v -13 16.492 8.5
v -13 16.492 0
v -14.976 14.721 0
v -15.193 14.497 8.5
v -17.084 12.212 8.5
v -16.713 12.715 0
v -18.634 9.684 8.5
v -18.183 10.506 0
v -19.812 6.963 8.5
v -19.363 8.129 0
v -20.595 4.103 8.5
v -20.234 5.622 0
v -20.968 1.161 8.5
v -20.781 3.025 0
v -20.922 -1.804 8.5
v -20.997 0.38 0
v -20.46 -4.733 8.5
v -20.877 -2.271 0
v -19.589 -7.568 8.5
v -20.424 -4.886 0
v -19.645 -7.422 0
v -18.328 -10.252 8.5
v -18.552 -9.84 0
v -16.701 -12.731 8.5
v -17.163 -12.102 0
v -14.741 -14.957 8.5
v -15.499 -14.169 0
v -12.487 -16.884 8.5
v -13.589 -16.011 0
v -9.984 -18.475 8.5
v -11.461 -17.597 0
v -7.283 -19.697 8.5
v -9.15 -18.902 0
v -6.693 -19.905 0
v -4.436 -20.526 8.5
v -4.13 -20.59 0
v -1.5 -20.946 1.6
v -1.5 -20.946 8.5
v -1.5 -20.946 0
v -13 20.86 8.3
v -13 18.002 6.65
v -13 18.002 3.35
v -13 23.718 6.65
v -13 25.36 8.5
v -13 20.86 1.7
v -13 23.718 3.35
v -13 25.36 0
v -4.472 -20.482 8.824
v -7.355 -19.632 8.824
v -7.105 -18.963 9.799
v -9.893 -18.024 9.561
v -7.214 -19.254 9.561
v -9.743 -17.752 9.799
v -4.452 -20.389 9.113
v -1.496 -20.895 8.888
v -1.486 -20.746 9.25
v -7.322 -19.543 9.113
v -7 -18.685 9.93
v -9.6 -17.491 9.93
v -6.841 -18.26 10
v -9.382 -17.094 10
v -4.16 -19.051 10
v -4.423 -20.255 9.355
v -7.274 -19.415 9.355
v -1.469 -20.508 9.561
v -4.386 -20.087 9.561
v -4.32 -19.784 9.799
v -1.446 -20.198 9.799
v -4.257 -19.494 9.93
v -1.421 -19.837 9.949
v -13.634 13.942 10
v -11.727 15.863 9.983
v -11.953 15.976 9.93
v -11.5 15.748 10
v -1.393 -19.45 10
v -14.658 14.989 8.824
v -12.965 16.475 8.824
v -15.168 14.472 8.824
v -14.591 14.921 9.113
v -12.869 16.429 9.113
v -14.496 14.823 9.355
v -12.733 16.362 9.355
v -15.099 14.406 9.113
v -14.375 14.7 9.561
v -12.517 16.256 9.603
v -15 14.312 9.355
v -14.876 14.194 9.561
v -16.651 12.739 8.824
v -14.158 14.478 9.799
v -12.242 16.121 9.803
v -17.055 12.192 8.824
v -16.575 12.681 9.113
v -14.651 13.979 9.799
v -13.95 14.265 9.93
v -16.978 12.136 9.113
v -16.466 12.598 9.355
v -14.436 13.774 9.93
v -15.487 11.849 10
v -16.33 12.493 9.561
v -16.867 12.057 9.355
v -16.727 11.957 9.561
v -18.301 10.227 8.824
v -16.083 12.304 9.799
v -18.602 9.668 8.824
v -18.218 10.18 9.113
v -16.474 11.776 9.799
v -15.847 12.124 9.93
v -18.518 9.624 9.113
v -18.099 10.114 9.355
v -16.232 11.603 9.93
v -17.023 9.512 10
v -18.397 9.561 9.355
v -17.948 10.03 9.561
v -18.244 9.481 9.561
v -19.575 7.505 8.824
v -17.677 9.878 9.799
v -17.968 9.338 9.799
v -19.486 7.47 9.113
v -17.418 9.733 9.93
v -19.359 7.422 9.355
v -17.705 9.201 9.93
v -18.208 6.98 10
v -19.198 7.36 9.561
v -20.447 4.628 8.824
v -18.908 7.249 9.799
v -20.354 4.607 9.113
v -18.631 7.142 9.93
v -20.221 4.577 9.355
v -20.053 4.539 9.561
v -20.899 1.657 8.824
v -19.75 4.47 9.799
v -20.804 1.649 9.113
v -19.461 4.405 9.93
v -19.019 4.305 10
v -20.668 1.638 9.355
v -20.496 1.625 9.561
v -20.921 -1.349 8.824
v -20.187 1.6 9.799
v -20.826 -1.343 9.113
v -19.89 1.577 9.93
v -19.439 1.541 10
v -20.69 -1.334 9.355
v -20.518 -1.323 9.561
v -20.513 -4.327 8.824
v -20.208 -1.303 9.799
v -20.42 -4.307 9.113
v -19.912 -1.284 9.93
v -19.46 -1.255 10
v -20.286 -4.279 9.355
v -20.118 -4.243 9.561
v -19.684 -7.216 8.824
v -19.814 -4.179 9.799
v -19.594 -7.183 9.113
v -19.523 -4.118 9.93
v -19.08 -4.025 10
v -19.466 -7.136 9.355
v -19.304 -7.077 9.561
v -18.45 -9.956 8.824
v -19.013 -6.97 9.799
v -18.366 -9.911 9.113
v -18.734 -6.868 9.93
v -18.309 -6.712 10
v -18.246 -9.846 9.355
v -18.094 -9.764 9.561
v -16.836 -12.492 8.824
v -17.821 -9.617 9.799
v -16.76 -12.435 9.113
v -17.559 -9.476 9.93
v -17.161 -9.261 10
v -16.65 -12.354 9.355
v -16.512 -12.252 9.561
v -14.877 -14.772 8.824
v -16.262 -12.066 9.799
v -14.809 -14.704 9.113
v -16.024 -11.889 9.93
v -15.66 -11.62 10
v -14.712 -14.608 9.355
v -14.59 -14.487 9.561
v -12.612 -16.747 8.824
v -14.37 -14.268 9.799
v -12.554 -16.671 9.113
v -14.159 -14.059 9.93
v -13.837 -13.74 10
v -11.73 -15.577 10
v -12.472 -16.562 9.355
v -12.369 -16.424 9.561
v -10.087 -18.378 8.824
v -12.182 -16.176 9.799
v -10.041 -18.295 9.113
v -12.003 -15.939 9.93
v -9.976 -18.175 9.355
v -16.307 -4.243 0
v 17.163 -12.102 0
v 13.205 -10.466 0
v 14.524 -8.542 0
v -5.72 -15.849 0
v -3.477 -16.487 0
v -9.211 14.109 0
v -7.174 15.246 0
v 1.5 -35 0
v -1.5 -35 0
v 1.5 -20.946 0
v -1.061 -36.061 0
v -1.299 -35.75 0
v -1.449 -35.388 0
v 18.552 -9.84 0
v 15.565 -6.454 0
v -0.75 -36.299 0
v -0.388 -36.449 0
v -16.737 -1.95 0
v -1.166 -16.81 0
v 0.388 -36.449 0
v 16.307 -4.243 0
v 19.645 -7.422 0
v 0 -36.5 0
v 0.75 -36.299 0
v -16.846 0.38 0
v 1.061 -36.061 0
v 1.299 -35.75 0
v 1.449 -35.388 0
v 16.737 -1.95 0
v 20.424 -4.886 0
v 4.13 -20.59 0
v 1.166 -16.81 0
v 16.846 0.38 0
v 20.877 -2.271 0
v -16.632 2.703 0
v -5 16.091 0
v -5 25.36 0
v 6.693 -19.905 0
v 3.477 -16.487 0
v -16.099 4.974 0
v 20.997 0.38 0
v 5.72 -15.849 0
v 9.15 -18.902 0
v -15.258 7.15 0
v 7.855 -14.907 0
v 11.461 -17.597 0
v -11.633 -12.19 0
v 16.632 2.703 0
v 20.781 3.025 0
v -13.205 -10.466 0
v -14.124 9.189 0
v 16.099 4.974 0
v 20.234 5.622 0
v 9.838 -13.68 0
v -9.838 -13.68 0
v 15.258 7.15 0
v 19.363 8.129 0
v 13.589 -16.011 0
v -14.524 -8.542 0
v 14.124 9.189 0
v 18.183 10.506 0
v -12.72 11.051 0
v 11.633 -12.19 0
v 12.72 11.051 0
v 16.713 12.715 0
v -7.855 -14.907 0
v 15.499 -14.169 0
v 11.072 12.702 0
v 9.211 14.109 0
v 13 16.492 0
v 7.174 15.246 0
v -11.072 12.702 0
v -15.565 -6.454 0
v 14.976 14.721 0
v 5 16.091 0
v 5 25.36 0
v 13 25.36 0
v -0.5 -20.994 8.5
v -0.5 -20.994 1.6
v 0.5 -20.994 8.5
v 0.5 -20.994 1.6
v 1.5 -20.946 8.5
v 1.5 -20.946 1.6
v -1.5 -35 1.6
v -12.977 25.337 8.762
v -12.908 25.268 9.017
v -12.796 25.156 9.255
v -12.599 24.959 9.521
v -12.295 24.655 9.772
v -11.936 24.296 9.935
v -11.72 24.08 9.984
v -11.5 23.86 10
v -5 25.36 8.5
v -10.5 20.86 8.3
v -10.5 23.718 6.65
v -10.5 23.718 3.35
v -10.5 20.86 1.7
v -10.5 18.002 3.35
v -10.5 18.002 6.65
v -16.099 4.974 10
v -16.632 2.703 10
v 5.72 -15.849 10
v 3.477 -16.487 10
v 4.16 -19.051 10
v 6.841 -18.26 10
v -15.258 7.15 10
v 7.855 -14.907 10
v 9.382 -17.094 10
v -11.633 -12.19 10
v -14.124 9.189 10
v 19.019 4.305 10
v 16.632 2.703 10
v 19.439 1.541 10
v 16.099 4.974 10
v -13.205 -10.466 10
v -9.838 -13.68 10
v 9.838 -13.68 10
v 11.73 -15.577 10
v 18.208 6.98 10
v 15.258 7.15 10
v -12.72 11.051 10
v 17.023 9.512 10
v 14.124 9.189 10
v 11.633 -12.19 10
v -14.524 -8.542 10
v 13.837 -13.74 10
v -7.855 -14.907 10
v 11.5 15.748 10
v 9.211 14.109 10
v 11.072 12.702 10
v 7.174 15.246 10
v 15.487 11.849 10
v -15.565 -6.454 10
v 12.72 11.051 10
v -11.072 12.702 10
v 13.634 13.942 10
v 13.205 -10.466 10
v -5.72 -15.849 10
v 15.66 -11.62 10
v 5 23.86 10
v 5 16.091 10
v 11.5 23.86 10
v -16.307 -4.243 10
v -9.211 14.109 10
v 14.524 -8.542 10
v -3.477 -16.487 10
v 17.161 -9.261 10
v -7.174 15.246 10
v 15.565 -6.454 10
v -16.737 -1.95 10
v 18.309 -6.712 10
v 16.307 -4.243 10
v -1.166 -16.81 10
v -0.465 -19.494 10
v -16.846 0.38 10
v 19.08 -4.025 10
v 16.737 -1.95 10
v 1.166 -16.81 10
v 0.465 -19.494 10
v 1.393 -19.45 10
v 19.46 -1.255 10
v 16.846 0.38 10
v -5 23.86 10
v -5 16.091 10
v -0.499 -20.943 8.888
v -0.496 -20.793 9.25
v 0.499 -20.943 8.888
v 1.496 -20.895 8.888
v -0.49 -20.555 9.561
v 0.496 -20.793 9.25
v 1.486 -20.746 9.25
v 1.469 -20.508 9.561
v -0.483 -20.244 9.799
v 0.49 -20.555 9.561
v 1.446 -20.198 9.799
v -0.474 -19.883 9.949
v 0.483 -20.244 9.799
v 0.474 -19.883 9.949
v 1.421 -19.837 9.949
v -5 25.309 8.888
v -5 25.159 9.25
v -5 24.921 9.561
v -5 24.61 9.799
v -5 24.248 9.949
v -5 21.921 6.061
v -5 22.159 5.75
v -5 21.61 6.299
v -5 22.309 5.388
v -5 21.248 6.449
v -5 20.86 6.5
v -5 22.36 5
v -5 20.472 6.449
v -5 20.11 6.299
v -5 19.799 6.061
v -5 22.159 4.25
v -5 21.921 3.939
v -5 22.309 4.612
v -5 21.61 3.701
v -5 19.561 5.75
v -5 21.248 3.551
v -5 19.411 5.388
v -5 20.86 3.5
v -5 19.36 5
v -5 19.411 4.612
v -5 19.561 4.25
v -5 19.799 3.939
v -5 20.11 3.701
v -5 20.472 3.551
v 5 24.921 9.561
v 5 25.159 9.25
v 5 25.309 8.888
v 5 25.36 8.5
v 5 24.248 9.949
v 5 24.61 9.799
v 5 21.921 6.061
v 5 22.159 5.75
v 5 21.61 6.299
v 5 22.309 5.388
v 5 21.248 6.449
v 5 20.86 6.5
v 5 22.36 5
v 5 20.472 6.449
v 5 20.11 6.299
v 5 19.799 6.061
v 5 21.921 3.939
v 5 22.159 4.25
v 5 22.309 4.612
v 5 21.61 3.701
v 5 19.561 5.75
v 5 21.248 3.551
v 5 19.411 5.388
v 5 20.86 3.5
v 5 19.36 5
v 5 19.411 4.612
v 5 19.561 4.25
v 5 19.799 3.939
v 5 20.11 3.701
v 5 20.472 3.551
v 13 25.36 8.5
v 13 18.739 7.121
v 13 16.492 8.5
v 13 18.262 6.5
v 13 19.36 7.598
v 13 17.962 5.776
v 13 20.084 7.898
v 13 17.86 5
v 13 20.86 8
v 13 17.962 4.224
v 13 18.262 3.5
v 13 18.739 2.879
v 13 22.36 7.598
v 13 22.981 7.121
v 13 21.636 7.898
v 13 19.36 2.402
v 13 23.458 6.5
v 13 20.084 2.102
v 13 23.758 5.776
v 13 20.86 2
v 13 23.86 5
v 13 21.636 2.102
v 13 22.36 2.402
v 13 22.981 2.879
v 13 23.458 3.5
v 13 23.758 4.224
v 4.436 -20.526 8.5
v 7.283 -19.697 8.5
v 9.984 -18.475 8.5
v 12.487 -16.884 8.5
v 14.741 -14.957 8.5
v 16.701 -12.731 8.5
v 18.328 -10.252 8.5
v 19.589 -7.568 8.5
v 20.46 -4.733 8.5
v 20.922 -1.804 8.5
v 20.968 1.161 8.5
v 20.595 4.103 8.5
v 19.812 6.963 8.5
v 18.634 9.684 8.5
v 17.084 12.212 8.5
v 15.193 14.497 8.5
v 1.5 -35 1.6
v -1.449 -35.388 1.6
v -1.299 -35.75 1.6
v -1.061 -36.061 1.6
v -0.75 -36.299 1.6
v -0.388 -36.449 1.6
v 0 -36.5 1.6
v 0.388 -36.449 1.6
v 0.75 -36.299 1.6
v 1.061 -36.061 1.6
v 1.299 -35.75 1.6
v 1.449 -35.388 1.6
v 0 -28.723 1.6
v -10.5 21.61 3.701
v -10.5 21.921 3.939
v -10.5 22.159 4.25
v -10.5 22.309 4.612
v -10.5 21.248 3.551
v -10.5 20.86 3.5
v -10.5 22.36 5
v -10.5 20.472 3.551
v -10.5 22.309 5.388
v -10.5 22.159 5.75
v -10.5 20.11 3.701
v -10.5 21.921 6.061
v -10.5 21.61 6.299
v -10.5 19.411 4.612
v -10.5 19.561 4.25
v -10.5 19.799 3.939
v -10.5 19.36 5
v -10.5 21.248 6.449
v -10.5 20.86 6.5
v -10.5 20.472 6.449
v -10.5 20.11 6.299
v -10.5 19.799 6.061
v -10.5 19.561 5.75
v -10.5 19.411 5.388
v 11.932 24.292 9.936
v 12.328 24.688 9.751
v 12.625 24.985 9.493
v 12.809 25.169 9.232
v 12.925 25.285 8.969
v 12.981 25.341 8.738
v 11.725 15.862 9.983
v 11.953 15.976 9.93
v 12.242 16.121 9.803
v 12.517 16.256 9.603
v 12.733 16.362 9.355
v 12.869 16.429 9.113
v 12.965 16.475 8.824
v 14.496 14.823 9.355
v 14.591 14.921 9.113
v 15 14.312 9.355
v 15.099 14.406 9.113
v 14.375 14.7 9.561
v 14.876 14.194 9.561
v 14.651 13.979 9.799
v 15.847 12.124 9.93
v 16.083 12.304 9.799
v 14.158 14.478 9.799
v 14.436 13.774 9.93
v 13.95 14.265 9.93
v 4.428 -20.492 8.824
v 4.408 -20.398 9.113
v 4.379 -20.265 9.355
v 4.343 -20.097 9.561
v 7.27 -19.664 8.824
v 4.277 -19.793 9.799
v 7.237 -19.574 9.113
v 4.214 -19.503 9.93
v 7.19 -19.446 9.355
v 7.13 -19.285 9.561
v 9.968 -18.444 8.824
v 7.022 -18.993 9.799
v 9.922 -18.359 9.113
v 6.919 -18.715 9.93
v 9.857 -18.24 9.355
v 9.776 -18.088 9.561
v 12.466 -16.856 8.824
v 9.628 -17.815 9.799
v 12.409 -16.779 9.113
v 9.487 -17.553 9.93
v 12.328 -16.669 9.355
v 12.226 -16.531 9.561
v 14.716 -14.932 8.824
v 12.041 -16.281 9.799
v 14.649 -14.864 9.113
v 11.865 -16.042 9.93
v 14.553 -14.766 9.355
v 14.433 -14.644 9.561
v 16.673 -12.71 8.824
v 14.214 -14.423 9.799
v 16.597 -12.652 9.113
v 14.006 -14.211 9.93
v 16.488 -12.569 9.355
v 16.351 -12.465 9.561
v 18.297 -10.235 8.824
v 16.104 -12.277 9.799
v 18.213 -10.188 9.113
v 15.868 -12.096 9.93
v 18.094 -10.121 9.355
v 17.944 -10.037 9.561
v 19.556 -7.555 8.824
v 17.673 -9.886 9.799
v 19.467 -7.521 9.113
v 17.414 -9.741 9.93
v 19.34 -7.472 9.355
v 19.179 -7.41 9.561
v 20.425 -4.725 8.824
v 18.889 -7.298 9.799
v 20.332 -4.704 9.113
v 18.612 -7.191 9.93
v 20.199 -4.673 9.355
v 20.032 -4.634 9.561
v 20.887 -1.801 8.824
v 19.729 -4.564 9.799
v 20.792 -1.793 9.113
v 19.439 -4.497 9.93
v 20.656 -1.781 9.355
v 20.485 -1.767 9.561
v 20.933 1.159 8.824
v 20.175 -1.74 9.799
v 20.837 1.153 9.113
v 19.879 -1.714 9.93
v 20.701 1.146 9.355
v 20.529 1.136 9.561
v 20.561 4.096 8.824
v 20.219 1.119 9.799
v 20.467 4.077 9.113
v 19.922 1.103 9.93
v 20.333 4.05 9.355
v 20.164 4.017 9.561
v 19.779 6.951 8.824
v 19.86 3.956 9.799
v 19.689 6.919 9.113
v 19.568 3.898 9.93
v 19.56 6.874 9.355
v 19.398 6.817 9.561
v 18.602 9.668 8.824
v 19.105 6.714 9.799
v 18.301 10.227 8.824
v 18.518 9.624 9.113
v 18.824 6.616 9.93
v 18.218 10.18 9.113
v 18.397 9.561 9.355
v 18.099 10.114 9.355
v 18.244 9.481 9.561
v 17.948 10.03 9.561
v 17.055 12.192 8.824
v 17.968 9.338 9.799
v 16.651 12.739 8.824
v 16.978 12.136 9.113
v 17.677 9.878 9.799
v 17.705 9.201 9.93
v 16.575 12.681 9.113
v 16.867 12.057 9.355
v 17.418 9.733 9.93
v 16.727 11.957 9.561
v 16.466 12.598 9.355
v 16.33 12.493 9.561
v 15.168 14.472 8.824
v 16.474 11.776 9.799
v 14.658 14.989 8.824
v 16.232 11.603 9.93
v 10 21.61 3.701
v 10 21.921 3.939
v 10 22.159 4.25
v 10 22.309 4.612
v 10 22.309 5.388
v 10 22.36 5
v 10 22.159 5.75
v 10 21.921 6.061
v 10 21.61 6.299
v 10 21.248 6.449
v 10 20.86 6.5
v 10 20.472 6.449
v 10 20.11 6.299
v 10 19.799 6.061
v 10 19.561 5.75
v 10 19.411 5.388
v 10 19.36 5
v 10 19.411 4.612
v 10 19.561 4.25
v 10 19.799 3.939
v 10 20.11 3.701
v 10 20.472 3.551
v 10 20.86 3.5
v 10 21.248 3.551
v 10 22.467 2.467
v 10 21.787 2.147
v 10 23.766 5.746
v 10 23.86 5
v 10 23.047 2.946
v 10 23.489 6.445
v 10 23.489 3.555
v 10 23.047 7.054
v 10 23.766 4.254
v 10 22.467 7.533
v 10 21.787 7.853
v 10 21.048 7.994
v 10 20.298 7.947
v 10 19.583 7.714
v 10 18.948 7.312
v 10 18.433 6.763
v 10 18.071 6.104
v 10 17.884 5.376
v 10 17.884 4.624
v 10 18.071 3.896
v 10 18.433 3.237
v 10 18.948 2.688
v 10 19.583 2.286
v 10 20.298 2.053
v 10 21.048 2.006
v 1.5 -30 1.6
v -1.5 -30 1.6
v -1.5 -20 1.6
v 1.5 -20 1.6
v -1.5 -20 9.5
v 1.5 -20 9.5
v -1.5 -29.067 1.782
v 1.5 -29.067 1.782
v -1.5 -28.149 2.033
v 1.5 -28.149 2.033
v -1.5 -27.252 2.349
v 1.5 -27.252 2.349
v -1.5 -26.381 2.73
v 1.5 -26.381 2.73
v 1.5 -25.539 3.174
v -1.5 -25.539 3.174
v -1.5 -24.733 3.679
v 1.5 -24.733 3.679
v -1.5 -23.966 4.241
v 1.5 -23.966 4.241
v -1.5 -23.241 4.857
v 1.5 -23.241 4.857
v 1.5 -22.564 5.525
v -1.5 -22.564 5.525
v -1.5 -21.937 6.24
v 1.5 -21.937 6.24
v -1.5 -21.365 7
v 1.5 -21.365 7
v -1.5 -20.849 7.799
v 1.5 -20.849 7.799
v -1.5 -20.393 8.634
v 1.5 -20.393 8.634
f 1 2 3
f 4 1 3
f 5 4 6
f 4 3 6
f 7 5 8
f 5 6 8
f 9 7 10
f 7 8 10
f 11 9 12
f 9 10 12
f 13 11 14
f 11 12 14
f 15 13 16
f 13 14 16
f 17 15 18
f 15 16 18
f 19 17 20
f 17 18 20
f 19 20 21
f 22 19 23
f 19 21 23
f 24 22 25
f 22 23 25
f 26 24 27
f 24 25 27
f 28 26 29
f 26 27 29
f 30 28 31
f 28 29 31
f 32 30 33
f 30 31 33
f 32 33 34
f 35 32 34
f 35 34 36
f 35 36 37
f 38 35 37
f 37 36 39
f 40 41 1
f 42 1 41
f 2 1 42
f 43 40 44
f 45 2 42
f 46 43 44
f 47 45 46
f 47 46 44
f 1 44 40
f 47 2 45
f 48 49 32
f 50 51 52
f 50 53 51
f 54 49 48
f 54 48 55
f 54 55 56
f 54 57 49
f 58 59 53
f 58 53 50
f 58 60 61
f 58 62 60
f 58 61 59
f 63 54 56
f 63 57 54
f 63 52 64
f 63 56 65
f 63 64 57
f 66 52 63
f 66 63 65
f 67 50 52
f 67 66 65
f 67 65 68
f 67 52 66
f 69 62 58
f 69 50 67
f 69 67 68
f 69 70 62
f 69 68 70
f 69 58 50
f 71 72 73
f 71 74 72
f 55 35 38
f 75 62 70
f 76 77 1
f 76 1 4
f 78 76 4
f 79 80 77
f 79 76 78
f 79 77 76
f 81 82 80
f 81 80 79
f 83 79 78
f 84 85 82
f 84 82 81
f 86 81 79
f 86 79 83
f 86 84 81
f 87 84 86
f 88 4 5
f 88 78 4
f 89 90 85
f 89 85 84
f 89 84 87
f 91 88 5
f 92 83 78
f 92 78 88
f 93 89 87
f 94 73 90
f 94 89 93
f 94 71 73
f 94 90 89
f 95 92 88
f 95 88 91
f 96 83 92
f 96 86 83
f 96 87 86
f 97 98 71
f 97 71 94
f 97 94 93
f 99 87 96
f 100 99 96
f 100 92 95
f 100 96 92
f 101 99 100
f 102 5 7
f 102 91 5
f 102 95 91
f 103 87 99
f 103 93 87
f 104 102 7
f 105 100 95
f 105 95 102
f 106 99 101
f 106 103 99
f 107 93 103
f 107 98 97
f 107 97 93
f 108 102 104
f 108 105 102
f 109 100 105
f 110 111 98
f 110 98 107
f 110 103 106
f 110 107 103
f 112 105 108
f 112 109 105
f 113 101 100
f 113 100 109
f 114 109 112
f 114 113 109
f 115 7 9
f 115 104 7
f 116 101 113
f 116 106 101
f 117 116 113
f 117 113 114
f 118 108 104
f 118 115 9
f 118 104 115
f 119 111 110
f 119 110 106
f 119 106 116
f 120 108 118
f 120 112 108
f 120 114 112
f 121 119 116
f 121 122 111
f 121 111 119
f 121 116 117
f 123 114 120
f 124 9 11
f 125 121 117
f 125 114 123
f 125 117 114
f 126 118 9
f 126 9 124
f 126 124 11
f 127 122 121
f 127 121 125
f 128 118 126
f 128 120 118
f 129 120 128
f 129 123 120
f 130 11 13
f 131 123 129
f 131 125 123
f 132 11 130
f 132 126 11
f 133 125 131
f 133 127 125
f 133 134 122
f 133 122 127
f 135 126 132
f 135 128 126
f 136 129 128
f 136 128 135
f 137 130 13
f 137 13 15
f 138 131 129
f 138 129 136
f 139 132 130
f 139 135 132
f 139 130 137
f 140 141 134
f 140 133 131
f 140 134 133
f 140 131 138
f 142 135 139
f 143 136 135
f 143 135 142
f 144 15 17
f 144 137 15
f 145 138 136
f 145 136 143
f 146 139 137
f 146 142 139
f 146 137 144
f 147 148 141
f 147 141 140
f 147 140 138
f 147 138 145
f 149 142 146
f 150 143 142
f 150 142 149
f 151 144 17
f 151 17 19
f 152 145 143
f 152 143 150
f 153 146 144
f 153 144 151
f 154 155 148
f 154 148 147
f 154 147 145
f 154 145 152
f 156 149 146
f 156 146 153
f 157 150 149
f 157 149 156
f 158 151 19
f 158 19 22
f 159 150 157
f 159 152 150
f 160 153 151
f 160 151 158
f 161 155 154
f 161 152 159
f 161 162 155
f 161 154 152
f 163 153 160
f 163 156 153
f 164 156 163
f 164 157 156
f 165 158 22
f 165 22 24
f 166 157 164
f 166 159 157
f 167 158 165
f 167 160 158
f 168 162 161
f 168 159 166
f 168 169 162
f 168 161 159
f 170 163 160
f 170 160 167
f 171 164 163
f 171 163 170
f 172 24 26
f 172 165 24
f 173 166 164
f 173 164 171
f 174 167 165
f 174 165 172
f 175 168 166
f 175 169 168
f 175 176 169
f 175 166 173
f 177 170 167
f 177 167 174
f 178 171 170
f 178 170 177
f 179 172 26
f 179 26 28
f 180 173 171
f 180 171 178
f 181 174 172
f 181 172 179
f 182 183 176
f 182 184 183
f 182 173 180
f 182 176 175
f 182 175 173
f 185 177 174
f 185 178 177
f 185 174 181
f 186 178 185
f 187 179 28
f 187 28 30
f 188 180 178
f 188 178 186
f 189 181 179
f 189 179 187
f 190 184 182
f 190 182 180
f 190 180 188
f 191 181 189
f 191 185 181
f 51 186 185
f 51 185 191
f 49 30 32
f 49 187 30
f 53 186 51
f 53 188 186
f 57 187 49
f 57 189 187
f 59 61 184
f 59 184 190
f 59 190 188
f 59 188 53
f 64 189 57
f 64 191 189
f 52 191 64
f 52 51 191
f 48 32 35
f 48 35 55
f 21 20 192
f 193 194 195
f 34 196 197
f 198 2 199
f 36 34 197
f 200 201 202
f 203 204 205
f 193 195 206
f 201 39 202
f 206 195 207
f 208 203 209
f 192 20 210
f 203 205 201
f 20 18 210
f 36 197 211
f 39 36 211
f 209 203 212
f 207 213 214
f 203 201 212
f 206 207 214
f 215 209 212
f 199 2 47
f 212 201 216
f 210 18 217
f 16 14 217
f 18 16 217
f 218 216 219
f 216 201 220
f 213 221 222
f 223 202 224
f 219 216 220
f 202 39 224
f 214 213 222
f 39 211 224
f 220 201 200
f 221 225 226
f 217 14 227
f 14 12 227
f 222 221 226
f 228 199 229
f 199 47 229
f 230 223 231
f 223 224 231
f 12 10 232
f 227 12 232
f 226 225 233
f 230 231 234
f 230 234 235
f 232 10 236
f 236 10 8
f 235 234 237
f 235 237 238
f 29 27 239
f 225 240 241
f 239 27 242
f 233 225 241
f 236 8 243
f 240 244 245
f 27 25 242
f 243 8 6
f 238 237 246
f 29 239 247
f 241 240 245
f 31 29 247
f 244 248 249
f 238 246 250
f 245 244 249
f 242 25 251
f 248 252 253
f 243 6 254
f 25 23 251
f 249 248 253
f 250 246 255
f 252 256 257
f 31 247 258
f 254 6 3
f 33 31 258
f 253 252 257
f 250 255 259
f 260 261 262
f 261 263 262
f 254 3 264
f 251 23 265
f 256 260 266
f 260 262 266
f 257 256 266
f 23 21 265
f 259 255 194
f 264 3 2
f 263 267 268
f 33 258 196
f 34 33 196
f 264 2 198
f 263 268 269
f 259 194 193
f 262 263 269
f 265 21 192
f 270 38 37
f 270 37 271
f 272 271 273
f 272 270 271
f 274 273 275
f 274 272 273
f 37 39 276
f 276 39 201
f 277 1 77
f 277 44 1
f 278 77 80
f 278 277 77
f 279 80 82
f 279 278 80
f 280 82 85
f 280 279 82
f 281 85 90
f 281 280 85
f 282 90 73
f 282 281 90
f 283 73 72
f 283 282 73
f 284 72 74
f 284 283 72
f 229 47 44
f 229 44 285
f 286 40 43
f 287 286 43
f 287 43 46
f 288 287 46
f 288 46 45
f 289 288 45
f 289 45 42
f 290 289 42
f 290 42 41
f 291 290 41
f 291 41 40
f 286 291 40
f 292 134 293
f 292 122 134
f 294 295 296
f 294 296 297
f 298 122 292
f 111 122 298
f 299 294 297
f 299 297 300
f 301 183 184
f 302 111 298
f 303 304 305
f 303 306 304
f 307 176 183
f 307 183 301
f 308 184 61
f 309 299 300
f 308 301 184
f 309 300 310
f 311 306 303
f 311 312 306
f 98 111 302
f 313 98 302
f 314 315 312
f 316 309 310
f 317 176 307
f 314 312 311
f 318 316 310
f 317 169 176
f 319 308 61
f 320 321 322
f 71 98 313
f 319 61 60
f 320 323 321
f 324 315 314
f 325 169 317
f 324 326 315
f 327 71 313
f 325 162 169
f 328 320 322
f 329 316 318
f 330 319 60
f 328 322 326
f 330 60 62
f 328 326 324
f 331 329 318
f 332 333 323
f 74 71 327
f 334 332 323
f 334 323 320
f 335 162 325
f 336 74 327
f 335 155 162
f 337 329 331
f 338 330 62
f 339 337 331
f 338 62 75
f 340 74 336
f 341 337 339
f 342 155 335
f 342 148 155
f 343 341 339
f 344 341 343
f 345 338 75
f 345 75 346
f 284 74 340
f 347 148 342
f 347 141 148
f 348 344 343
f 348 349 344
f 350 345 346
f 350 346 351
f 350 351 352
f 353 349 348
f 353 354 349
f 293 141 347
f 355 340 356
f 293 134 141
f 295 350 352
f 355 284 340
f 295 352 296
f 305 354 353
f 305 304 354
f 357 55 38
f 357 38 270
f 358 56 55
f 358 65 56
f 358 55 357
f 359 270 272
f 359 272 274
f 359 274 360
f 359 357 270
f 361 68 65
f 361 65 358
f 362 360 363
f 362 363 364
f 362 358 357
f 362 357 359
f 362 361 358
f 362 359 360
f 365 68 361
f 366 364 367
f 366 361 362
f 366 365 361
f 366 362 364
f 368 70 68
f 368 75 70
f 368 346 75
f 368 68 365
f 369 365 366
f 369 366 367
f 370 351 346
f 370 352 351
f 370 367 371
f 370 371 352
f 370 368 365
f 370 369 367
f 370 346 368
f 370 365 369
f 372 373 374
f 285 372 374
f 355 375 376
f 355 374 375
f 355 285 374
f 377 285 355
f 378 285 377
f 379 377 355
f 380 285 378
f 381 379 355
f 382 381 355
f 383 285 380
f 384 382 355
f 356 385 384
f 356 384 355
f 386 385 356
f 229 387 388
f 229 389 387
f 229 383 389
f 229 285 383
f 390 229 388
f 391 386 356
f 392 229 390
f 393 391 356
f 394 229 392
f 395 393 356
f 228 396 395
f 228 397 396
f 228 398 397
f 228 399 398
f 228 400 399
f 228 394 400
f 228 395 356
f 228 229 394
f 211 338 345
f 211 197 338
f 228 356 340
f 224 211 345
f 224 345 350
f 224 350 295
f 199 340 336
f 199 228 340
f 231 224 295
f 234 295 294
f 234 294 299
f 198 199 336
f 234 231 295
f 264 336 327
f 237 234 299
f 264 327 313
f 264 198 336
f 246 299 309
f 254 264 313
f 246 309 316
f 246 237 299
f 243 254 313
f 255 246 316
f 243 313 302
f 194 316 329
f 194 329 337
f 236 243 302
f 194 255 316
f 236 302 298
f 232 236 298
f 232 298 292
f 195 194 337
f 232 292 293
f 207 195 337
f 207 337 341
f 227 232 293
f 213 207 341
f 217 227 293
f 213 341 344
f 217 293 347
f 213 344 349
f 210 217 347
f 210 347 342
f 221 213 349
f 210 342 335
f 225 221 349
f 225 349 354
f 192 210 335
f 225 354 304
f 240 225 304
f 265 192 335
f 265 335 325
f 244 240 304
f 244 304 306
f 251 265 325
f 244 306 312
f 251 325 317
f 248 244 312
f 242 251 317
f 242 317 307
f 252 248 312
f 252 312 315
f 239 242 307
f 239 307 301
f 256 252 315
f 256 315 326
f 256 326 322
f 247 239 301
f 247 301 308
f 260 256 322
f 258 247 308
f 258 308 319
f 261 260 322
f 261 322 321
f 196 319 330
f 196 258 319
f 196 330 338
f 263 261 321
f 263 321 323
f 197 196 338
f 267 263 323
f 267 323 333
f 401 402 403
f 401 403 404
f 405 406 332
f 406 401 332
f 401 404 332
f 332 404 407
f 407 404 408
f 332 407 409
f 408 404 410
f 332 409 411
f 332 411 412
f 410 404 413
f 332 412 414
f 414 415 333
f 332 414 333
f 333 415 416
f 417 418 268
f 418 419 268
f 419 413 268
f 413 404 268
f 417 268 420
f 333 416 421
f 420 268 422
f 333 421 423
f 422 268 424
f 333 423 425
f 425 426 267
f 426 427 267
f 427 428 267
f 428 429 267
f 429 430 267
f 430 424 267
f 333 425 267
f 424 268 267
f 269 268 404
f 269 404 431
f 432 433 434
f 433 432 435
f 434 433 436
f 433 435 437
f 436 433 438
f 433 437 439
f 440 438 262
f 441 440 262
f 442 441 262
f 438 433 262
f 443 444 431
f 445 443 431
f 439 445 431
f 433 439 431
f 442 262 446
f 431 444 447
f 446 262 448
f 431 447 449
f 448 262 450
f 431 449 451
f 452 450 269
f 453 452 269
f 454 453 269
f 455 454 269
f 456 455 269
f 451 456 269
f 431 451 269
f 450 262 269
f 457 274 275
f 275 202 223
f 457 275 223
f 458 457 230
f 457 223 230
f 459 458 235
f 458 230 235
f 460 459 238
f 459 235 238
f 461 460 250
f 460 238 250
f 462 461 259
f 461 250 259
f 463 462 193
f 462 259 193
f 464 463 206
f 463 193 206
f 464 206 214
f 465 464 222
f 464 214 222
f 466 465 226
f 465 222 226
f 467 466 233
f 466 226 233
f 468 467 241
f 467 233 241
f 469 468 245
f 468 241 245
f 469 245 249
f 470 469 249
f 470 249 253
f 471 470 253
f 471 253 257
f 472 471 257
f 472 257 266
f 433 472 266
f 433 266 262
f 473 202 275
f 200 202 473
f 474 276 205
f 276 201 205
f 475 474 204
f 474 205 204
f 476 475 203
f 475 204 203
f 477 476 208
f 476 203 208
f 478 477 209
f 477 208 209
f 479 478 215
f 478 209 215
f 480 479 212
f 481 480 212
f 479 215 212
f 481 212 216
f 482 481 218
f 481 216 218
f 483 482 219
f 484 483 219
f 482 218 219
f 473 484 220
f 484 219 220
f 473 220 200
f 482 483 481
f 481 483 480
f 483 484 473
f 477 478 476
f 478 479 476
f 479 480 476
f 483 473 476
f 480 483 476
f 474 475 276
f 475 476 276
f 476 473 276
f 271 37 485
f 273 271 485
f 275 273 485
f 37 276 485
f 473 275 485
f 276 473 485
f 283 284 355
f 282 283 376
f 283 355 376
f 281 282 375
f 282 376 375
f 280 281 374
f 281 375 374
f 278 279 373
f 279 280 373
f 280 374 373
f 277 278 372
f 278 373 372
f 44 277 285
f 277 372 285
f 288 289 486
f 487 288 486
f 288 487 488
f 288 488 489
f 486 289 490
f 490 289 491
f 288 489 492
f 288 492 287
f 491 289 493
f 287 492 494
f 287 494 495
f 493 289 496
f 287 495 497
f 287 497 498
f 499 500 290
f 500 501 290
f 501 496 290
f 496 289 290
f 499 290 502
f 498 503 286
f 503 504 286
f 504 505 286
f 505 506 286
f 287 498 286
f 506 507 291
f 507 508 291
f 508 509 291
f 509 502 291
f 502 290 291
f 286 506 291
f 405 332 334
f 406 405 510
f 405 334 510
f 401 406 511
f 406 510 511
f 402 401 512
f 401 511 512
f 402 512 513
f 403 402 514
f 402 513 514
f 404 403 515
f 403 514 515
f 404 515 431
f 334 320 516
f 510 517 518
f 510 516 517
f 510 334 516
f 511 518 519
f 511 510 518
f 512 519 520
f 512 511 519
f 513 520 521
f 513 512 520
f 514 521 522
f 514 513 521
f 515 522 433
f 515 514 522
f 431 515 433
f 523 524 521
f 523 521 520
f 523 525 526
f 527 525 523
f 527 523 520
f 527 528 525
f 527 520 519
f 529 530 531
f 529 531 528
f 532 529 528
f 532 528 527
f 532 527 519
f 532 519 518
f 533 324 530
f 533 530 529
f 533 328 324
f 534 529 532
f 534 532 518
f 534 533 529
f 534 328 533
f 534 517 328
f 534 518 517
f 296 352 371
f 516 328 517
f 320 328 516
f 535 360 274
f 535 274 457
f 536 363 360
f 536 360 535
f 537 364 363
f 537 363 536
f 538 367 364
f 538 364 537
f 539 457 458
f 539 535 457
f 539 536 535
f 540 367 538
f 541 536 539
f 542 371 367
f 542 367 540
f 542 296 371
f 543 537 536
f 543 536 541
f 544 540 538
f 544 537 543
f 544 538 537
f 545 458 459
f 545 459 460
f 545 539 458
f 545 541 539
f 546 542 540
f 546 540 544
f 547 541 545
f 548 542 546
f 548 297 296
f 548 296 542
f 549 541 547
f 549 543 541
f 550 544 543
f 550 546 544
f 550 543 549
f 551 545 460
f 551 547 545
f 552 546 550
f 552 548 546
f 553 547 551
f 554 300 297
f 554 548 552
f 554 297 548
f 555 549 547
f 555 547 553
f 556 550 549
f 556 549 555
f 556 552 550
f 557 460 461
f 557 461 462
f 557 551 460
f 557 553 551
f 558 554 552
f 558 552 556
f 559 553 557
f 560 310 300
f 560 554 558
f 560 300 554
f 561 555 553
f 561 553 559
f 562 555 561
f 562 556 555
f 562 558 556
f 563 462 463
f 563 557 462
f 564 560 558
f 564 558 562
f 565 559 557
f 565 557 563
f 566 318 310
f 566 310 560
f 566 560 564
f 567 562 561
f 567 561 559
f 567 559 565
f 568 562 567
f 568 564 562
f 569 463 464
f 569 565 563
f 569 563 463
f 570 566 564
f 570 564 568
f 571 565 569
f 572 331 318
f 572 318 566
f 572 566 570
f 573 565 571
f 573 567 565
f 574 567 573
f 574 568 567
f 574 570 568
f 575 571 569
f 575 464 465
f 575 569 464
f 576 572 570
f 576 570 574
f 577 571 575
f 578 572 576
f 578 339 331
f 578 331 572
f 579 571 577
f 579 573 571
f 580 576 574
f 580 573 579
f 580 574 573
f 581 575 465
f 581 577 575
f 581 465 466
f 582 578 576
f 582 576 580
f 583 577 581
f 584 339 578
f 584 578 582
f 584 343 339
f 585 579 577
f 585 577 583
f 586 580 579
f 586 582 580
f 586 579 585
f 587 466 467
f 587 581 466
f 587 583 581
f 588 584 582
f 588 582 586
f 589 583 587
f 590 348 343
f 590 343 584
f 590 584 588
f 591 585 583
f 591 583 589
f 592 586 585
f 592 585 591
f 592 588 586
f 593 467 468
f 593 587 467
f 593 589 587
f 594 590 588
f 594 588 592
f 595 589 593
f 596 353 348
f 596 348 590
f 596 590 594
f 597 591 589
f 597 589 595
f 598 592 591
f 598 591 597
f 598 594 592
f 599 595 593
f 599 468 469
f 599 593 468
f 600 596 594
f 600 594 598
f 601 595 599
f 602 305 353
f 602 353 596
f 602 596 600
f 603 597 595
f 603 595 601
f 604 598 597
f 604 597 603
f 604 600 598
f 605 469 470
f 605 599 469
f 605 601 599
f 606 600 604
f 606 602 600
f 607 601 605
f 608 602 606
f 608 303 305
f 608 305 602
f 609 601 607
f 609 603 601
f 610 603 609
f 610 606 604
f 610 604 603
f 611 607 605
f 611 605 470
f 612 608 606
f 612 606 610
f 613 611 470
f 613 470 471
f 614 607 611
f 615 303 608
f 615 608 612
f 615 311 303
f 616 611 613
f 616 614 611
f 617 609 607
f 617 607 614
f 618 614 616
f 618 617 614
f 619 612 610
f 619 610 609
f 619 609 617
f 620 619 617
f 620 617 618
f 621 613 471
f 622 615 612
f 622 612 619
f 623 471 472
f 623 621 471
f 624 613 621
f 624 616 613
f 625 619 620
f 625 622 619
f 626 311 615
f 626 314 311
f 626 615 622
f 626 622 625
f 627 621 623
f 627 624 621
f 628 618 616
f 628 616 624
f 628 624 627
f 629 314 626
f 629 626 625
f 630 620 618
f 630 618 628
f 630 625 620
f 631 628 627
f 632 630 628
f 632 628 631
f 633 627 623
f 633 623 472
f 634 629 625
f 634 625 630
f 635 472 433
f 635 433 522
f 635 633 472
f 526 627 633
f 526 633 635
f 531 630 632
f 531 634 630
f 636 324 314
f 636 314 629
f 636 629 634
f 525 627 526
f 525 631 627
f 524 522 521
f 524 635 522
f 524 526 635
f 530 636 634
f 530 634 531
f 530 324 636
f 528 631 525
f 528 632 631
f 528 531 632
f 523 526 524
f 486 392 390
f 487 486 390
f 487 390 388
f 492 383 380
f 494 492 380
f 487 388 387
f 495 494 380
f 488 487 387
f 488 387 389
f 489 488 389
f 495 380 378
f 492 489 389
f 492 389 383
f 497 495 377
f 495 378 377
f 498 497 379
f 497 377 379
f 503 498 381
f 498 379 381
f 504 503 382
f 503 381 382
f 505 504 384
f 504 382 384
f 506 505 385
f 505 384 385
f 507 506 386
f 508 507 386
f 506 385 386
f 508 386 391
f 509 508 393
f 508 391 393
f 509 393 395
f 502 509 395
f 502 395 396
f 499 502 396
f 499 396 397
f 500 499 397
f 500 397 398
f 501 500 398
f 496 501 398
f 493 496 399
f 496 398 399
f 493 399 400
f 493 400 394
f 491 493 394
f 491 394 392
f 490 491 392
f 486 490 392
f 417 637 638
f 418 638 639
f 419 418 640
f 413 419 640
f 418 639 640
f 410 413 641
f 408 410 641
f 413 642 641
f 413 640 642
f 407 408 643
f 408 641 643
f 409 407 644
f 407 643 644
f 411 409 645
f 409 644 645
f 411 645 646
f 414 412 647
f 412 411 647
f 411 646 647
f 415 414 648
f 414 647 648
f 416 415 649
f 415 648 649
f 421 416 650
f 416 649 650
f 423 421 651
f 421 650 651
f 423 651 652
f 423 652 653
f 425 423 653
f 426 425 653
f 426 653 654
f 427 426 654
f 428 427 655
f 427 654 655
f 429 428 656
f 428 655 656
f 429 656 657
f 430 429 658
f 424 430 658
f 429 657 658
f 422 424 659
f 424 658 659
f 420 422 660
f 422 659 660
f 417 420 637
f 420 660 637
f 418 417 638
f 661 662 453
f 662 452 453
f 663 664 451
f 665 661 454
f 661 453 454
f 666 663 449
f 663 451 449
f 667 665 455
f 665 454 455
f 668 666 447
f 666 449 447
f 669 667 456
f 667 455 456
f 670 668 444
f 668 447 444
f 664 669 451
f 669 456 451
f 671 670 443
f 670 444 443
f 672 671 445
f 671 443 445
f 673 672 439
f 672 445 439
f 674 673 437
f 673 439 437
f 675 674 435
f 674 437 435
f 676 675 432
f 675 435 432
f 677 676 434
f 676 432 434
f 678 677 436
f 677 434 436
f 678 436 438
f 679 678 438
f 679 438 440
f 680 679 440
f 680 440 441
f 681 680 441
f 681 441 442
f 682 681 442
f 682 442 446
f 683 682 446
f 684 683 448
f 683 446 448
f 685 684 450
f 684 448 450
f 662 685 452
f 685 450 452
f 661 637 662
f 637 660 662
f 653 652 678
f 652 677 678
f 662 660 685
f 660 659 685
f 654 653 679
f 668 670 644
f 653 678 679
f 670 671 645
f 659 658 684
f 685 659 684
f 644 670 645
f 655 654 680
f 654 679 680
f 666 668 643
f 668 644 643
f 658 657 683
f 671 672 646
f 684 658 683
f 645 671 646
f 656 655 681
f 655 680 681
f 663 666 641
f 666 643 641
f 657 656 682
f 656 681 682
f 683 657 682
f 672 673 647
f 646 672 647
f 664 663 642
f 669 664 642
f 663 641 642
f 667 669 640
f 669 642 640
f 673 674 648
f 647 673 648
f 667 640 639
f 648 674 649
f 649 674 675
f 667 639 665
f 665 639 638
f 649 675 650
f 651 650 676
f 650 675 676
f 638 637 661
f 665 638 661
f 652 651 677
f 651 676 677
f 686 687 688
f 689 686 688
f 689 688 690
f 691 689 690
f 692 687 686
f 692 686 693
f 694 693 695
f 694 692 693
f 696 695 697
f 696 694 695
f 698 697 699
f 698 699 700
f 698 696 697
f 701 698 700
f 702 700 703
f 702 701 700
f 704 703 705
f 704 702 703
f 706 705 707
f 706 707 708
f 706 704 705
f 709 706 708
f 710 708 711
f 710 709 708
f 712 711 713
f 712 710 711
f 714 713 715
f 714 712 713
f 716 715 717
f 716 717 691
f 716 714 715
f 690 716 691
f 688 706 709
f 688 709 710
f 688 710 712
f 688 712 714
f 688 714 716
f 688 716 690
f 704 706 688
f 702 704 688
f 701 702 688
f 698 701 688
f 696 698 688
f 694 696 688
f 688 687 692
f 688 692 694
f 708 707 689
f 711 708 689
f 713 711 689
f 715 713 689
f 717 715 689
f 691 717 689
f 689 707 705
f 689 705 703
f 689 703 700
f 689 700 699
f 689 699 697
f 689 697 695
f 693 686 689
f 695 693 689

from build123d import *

# Parameters (mm, degrees)
PAD001_DEPTH    = 1.5
PAD_DEPTH       = 10
POCKET_DEPTH    = 8.4
SKETCH002_R     = 1.5
POCKET001_DEPTH = 34.001
SKETCH003_R     = 3
POCKET002_DEPTH = 3
POCKET003_DEPTH = 2.5
FILLET_R        = 1.5


with BuildPart() as pad001:
    # Sketch005 → Pad001 (new body, symmetric)
    with BuildSketch(Plane.YZ):
        with BuildLine():
            Line((-30, 1.6), (-20, 1.6))
            Line((-20, 1.6), (-20, 9.5))
            ThreePointArc((-30, 1.6), (-23.965552, 4.240572), (-20, 9.5))
        make_face()
    extrude(amount=PAD001_DEPTH, both=True)


with BuildPart() as fillet_body:
    # Sketch → Pad (new body)
    with BuildSketch(Plane.XY):
        with BuildLine():
            ThreePointArc((-5, 16.091069), (0, -16.85), (5, 16.091069))
            Line((5, 25.36), (5, 16.091069))
            Line((5, 25.36), (13, 25.36))
            Line((13, 16.492423), (13, 25.36))
            ThreePointArc((1.5, -20.94636), (20.074315, -6.166189), (13, 16.492423))
            Line((1.5, -20.94636), (1.5, -35.000011))
            ThreePointArc((-1.5, -35.000011), (0, -36.5), (1.5, -35.000011))
            Line((-1.5, -20.94636), (-1.5, -35.000011))
            ThreePointArc((-13, 16.492423), (-20.074315, -6.166189), (-1.5, -20.94636))
            Line((-13, 16.492423), (-13, 25.36))
            Line((-13, 25.36), (-5, 25.36))
            Line((-5, 25.36), (-5, 16.091069))
        make_face()
    extrude(amount=PAD_DEPTH)

    # Sketch001 → Pocket (cut)
    with BuildSketch(Plane.XY.offset(10)):
        with BuildLine():
            ThreePointArc((-1.5, -20.94636), (0, -21), (1.5, -20.94636))
            Line((1.5, -20.94636), (1.5, -35.000011))
            ThreePointArc((-1.5, -35.000011), (0, -36.5), (1.5, -35.000011))
            Line((-1.5, -20.94636), (-1.5, -35.000011))
        make_face()
    extrude(amount=-POCKET_DEPTH, mode=Mode.SUBTRACT)

    # Sketch002 → Pocket001 (cut, through all)
    with BuildSketch(Plane.YZ.offset(13)):
        with Locations((20.86, 5)):
            Circle(SKETCH002_R)
    extrude(amount=-POCKET001_DEPTH, mode=Mode.SUBTRACT)

    # Sketch003 → Pocket002 (cut, symmetric)
    with BuildSketch(Plane.YZ.offset(13)):
        with Locations((20.86, 5)):
            Circle(SKETCH003_R)
    extrude(amount=POCKET002_DEPTH, both=True, mode=Mode.SUBTRACT)

    # Sketch004 → Pocket003 (cut)
    with BuildSketch(Plane(origin=(-13, 0, 0), x_dir=(0, -1, 0), z_dir=(-1, 0, 0))):
        Polygon((-20.86, 8.3), (-23.717884, 6.65), (-23.717884, 3.35), (-20.86, 1.7), (-18.002116, 3.35), (-18.002116, 6.65), align=None)
    extrude(amount=-POCKET003_DEPTH, mode=Mode.SUBTRACT)

    # Fillet
    fillet_edges = [fillet_body.edges().sort_by_distance(p)[0] for p in [
        (-20.074315, -6.166189, 10),
        (-13, 20.926211, 10),
        (-9, 25.36, 10),
        (9, 25.36, 10),
        (13, 20.926211, 10),
        (20.074315, -6.166189, 10),
        (0, -21, 10),
    ]]
    fillet(fillet_edges, radius=FILLET_R)


solid = Compound([pad001.part, fillet_body.part])
